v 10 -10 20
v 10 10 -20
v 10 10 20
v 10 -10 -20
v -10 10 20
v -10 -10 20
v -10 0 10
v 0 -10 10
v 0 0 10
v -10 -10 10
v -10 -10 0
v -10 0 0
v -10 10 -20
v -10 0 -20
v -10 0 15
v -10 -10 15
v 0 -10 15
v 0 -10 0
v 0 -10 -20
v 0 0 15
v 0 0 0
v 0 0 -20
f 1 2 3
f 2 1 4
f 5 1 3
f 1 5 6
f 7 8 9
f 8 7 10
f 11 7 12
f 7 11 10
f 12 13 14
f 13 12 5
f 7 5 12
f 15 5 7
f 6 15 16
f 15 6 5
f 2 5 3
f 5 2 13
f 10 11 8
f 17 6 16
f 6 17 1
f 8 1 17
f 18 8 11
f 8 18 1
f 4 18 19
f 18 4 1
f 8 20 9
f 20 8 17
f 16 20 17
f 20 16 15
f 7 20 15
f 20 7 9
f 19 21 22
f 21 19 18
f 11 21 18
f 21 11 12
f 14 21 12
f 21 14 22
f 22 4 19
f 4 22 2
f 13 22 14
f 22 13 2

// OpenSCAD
// Define the central block
module central_block() {
    difference() {
        cube([20, 20, 20], center = true);
        union() {
            // Deepen and refine the cross-shaped void
            translate([-10, -5, -20]) cube([20, 10, 40], center = true); // Adjusted depth to extend fully through
            translate([-5, -10, -20]) cube([10, 20, 40], center = true); // Adjusted depth to extend fully through
        }
    }
}

// Define the upper block
module upper_block() {
    difference() {
        cube([20, 20, 10], center = true);
        // Enlarge and sharpen the stepped cutout
        translate([-10, -5, -10]) cube([20, 10, 20], center = true); // Adjusted dimensions for precision
        translate([-5, -10, -10]) cube([10, 20, 20], center = true); // Added for better alignment
    }
}

// Define the lower block
module lower_block() {
    difference() {
        cube([20, 20, 10], center = true);
        // Mirror the upper block’s cutout and ensure proper alignment
        translate([-10, -5, 0]) cube([20, 10, 20], center = true); // Adjusted dimensions for precision
        translate([-5, -10, 0]) cube([10, 20, 20], center = true); // Added for better alignment
    }
}

// Assemble the components
module assembly() {
    translate([0, 0, 15]) upper_block(); // Position the upper block
    central_block(); // Position the central block
    translate([0, 0, -15]) lower_block(); // Position the lower block
}

// Render the assembly
assembly();
